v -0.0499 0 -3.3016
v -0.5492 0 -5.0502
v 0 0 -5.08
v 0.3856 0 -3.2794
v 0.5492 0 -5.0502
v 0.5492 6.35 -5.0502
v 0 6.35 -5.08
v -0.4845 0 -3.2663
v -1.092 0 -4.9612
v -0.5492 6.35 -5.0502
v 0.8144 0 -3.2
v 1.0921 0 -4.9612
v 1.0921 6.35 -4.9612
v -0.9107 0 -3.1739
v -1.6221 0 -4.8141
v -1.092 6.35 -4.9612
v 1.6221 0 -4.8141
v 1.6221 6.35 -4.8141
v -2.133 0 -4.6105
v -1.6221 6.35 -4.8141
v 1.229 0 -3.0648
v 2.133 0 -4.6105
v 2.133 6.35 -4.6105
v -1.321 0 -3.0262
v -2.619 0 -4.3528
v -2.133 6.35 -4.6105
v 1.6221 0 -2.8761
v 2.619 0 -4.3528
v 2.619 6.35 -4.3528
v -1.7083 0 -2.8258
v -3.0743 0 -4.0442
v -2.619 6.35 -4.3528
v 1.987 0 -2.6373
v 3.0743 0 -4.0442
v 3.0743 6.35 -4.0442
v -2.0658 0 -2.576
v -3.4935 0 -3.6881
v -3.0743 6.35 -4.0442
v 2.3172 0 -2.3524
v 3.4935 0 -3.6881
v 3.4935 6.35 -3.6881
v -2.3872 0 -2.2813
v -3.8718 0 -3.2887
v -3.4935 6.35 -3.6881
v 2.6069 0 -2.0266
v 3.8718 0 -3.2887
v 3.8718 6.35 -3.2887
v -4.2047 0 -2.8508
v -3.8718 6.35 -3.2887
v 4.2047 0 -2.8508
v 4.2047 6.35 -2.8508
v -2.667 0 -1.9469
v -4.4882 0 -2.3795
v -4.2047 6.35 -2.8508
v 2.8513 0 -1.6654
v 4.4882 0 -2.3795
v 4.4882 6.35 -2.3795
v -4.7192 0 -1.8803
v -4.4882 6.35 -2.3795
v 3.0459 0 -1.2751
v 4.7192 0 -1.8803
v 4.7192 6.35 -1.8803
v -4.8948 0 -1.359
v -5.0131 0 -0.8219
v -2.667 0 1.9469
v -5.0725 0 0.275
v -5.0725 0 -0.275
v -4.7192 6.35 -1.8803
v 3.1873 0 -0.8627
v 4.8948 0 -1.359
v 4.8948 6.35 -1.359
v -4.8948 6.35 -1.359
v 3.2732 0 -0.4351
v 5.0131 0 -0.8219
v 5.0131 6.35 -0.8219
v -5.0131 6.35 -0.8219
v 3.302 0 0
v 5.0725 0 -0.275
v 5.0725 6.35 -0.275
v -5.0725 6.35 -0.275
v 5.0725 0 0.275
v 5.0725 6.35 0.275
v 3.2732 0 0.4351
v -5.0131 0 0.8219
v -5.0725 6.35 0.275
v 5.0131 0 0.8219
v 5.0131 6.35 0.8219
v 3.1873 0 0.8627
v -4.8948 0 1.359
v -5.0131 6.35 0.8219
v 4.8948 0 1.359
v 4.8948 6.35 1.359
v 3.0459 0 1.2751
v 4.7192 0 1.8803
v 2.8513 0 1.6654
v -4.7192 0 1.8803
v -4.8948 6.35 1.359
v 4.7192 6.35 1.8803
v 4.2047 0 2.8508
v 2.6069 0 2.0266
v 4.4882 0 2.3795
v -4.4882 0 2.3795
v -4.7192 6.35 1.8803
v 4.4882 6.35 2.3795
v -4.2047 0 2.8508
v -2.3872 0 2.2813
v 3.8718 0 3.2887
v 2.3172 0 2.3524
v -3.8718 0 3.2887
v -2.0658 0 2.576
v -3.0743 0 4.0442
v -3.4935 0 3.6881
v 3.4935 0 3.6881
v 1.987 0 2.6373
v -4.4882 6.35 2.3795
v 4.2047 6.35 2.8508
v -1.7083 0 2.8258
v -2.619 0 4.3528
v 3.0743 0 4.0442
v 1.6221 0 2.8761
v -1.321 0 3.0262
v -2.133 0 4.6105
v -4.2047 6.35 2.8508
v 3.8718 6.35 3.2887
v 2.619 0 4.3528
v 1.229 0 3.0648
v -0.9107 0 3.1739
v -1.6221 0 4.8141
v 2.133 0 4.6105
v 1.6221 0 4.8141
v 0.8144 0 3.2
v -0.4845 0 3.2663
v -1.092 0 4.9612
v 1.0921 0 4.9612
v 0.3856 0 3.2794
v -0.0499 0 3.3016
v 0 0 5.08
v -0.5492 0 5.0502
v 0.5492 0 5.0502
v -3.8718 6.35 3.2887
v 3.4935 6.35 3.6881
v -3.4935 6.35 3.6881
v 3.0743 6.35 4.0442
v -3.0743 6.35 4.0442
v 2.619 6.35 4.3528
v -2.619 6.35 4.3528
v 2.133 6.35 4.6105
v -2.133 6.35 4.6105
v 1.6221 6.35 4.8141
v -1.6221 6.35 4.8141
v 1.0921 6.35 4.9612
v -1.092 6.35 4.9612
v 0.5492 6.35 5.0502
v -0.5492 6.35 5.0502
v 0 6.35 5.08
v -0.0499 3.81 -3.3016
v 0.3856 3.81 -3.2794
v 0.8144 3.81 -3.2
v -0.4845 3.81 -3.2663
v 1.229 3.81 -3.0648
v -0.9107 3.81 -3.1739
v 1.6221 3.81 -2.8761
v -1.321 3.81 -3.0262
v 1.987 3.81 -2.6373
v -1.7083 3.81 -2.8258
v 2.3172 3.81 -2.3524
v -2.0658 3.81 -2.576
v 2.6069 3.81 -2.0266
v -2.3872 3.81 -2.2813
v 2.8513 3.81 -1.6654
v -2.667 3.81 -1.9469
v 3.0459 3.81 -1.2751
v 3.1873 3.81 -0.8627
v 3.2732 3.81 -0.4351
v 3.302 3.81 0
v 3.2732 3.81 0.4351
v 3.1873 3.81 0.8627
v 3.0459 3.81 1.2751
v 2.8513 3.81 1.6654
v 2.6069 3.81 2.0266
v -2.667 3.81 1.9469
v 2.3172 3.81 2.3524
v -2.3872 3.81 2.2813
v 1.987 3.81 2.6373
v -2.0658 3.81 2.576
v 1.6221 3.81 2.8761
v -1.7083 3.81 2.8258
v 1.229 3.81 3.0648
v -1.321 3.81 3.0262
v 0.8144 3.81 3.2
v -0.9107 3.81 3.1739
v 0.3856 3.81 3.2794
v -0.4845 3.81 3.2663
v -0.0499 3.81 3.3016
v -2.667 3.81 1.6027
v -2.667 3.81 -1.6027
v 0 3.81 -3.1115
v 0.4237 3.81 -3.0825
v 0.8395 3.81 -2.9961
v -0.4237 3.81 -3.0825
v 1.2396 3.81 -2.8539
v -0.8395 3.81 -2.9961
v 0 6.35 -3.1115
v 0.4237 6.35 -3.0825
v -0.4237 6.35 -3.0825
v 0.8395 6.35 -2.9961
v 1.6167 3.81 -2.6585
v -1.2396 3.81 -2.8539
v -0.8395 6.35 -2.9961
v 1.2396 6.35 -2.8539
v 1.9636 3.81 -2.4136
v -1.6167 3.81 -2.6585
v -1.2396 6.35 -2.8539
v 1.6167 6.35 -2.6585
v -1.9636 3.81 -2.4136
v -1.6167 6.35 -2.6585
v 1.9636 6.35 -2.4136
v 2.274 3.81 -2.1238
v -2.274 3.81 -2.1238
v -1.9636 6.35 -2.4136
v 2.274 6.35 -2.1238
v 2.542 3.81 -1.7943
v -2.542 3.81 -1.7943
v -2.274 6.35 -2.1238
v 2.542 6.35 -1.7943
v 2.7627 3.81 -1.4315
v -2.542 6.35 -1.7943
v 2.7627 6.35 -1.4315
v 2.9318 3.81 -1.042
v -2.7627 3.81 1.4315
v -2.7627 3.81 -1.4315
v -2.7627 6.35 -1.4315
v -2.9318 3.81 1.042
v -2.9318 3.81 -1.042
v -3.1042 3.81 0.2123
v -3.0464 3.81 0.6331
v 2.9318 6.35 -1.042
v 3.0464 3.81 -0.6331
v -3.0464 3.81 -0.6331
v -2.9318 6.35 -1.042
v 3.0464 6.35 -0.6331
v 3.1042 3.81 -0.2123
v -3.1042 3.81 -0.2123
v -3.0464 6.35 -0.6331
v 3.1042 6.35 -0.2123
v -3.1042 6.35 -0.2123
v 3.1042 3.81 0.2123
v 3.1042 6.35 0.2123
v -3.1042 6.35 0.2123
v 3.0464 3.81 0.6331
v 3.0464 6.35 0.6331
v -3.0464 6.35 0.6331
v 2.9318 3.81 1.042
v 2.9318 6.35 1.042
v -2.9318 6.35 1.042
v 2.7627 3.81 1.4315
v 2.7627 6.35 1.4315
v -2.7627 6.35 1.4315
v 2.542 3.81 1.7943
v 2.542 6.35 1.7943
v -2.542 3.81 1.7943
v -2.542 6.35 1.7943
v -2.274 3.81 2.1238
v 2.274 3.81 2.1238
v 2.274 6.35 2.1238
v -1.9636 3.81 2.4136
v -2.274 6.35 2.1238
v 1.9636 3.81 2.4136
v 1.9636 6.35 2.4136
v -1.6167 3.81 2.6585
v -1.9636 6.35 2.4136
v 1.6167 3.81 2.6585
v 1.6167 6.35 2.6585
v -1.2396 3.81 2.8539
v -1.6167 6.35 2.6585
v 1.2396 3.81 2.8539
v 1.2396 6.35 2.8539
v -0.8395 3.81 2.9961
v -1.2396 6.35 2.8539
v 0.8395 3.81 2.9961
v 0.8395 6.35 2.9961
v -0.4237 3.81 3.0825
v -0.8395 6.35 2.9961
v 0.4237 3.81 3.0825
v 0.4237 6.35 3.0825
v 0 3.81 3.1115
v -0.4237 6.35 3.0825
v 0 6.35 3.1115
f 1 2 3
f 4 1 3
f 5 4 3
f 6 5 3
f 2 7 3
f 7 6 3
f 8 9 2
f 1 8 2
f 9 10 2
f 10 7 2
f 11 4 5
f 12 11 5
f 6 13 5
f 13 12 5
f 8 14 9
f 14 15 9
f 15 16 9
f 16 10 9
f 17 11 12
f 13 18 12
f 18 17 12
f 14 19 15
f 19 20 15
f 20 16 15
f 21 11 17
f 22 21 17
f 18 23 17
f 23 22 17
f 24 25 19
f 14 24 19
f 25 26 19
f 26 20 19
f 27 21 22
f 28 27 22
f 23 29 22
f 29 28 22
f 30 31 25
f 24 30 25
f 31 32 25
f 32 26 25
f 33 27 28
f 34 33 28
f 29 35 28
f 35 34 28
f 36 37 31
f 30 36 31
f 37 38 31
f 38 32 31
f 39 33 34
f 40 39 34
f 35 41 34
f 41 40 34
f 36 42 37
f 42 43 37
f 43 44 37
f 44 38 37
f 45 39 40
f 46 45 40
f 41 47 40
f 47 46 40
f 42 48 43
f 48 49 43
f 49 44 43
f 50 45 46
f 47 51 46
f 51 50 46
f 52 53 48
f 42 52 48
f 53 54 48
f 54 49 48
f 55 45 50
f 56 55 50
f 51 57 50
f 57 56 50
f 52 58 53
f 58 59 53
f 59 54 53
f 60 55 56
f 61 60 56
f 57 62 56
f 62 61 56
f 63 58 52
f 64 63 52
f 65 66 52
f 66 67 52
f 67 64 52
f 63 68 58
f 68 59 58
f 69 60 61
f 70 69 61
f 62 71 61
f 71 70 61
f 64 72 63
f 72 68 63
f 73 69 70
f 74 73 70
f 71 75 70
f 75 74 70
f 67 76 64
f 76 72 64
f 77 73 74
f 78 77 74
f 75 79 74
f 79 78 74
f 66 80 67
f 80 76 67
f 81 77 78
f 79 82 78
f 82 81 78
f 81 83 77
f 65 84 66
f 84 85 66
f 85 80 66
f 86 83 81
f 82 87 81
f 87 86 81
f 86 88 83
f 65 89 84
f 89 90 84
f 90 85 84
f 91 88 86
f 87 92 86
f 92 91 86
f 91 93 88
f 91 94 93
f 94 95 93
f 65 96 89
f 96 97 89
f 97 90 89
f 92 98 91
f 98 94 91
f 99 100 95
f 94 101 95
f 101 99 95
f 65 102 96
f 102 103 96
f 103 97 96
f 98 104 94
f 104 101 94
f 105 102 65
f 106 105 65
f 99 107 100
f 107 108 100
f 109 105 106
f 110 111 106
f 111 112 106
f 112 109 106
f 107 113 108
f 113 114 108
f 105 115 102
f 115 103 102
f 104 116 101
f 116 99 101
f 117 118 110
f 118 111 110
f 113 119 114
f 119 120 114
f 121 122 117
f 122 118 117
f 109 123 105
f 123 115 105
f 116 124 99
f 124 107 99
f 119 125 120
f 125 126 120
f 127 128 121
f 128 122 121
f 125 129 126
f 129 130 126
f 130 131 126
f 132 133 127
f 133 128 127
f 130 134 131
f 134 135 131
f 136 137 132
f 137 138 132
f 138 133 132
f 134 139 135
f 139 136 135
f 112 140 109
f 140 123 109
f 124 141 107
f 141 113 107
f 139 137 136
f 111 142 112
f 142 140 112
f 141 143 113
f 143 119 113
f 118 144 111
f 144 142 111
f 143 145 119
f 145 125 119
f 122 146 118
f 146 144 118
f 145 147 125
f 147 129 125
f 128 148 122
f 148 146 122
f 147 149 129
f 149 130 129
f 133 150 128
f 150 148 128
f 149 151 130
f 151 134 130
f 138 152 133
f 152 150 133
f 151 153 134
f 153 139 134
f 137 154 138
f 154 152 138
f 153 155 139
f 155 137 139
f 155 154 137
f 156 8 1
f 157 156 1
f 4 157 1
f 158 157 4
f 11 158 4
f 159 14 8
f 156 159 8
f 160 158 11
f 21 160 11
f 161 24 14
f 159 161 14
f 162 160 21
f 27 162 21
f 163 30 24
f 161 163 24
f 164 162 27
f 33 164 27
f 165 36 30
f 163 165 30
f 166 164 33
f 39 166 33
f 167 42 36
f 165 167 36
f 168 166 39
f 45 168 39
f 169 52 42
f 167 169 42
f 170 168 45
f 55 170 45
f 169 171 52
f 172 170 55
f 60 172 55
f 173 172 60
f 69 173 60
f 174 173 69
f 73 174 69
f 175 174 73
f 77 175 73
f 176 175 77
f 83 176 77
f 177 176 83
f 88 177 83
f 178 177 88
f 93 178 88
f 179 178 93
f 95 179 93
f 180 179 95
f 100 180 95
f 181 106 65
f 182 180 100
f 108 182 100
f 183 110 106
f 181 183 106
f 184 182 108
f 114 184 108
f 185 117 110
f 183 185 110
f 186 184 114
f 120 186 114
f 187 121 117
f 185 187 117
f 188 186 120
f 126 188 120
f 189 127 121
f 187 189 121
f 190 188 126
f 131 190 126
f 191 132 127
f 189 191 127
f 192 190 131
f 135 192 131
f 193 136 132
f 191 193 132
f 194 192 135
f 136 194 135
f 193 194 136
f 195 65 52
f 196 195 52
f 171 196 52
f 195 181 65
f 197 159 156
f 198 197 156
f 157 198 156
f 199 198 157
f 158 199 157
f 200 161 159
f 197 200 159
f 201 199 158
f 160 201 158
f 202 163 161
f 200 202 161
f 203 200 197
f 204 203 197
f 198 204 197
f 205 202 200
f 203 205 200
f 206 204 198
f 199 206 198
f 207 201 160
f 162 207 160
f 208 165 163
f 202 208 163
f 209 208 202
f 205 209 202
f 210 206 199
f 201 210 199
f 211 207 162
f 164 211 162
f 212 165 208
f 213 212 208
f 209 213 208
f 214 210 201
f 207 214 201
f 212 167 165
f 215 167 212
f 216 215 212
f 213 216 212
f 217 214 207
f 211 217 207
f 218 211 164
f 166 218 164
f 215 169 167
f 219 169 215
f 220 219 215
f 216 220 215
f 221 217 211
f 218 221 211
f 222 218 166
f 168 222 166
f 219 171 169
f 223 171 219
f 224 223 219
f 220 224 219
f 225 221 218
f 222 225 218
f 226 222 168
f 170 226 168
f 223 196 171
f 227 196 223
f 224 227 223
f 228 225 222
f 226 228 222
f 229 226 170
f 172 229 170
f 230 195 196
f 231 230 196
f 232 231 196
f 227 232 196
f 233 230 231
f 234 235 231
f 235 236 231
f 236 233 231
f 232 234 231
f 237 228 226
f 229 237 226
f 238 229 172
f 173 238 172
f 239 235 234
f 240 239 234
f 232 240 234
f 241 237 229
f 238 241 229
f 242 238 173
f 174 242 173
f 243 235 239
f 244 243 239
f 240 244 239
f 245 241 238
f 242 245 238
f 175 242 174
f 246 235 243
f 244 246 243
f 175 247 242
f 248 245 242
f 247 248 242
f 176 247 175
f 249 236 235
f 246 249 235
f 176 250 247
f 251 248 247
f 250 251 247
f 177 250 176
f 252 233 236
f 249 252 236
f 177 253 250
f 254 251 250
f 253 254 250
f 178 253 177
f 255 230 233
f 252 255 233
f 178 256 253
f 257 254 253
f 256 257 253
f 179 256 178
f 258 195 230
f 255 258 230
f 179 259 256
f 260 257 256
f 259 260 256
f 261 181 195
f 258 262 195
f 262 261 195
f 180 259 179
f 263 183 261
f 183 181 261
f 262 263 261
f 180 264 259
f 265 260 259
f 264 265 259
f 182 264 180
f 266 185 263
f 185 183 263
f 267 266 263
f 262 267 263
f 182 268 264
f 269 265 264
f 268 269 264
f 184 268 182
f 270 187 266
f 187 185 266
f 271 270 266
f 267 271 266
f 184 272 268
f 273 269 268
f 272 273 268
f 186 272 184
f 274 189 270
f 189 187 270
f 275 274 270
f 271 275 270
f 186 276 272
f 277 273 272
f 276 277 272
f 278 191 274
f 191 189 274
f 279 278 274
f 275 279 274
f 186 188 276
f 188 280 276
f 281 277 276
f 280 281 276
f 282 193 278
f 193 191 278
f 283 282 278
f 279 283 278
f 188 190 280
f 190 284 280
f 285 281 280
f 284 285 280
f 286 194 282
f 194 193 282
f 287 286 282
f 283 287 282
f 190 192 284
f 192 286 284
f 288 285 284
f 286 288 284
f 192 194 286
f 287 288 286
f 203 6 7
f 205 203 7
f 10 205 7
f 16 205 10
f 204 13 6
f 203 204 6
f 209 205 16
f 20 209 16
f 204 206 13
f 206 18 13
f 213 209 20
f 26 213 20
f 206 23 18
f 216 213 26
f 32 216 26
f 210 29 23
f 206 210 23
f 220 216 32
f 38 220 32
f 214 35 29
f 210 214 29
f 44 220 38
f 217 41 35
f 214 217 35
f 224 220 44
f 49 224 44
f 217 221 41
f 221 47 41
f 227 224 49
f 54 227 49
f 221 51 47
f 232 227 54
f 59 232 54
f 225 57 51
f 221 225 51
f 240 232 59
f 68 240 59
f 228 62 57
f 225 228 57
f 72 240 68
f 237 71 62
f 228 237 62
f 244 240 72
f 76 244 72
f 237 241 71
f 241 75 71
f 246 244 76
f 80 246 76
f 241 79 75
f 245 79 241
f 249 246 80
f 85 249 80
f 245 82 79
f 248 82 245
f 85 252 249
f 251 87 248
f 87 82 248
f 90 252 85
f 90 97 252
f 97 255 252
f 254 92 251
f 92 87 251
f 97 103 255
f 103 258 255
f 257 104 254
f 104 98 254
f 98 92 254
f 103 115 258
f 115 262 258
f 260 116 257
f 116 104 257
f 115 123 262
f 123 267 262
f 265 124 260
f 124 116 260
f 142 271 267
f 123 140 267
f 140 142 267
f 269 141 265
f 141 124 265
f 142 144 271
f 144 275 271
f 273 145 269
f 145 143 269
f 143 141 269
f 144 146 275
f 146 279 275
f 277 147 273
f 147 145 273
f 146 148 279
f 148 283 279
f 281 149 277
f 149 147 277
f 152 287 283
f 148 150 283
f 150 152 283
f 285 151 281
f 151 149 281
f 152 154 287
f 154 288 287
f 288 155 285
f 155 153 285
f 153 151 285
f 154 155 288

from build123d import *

# Parameters (mm, degrees)
SKETCH1_R           = 5.08
BOSS_EXTRUDE1_DEPTH = 6.35
CUT_EXTRUDE1_DEPTH  = 3.81
SKETCH3_R           = 3.1115
CUT_EXTRUDE2_DEPTH  = 2.54


with BuildPart() as part:
    # Sketch1 → Boss-Extrude1 (new body)
    with BuildSketch(Plane(origin=(0, 0, 0), x_dir=(1, 0, 0), z_dir=(0, 1, 0))):
        with Locations(Location((0, 0, 0), (0, 0, 270))):
            Circle(SKETCH1_R)
    extrude(amount=BOSS_EXTRUDE1_DEPTH)

    # Sketch2 → Cut-Extrude1 (cut)
    with BuildSketch(Plane(origin=(0, 0, 0), x_dir=(1, 0, 0), z_dir=(0, 1, 0))):
        with BuildLine():
            Line((-2.667, 1.946873134), (-2.667, -1.946873134))
            ThreePointArc((-2.667, -1.946873134), (1.023906734, -3.139238602), (3.302, 0))
            ThreePointArc((3.302, 0), (1.023906734, 3.139238602), (-2.667, 1.946873134))
        make_face()
    extrude(amount=CUT_EXTRUDE1_DEPTH, mode=Mode.SUBTRACT)

    # Sketch3 → Cut-Extrude2 (cut)
    with BuildSketch(Plane(origin=(0, 6.35, 0), x_dir=(1, 0, 0), z_dir=(0, 1, 0))):
        with Locations(Location((0, 0, 0), (0, 0, 270))):
            Circle(SKETCH3_R)
    extrude(amount=-CUT_EXTRUDE2_DEPTH, mode=Mode.SUBTRACT)


solid = part.part
